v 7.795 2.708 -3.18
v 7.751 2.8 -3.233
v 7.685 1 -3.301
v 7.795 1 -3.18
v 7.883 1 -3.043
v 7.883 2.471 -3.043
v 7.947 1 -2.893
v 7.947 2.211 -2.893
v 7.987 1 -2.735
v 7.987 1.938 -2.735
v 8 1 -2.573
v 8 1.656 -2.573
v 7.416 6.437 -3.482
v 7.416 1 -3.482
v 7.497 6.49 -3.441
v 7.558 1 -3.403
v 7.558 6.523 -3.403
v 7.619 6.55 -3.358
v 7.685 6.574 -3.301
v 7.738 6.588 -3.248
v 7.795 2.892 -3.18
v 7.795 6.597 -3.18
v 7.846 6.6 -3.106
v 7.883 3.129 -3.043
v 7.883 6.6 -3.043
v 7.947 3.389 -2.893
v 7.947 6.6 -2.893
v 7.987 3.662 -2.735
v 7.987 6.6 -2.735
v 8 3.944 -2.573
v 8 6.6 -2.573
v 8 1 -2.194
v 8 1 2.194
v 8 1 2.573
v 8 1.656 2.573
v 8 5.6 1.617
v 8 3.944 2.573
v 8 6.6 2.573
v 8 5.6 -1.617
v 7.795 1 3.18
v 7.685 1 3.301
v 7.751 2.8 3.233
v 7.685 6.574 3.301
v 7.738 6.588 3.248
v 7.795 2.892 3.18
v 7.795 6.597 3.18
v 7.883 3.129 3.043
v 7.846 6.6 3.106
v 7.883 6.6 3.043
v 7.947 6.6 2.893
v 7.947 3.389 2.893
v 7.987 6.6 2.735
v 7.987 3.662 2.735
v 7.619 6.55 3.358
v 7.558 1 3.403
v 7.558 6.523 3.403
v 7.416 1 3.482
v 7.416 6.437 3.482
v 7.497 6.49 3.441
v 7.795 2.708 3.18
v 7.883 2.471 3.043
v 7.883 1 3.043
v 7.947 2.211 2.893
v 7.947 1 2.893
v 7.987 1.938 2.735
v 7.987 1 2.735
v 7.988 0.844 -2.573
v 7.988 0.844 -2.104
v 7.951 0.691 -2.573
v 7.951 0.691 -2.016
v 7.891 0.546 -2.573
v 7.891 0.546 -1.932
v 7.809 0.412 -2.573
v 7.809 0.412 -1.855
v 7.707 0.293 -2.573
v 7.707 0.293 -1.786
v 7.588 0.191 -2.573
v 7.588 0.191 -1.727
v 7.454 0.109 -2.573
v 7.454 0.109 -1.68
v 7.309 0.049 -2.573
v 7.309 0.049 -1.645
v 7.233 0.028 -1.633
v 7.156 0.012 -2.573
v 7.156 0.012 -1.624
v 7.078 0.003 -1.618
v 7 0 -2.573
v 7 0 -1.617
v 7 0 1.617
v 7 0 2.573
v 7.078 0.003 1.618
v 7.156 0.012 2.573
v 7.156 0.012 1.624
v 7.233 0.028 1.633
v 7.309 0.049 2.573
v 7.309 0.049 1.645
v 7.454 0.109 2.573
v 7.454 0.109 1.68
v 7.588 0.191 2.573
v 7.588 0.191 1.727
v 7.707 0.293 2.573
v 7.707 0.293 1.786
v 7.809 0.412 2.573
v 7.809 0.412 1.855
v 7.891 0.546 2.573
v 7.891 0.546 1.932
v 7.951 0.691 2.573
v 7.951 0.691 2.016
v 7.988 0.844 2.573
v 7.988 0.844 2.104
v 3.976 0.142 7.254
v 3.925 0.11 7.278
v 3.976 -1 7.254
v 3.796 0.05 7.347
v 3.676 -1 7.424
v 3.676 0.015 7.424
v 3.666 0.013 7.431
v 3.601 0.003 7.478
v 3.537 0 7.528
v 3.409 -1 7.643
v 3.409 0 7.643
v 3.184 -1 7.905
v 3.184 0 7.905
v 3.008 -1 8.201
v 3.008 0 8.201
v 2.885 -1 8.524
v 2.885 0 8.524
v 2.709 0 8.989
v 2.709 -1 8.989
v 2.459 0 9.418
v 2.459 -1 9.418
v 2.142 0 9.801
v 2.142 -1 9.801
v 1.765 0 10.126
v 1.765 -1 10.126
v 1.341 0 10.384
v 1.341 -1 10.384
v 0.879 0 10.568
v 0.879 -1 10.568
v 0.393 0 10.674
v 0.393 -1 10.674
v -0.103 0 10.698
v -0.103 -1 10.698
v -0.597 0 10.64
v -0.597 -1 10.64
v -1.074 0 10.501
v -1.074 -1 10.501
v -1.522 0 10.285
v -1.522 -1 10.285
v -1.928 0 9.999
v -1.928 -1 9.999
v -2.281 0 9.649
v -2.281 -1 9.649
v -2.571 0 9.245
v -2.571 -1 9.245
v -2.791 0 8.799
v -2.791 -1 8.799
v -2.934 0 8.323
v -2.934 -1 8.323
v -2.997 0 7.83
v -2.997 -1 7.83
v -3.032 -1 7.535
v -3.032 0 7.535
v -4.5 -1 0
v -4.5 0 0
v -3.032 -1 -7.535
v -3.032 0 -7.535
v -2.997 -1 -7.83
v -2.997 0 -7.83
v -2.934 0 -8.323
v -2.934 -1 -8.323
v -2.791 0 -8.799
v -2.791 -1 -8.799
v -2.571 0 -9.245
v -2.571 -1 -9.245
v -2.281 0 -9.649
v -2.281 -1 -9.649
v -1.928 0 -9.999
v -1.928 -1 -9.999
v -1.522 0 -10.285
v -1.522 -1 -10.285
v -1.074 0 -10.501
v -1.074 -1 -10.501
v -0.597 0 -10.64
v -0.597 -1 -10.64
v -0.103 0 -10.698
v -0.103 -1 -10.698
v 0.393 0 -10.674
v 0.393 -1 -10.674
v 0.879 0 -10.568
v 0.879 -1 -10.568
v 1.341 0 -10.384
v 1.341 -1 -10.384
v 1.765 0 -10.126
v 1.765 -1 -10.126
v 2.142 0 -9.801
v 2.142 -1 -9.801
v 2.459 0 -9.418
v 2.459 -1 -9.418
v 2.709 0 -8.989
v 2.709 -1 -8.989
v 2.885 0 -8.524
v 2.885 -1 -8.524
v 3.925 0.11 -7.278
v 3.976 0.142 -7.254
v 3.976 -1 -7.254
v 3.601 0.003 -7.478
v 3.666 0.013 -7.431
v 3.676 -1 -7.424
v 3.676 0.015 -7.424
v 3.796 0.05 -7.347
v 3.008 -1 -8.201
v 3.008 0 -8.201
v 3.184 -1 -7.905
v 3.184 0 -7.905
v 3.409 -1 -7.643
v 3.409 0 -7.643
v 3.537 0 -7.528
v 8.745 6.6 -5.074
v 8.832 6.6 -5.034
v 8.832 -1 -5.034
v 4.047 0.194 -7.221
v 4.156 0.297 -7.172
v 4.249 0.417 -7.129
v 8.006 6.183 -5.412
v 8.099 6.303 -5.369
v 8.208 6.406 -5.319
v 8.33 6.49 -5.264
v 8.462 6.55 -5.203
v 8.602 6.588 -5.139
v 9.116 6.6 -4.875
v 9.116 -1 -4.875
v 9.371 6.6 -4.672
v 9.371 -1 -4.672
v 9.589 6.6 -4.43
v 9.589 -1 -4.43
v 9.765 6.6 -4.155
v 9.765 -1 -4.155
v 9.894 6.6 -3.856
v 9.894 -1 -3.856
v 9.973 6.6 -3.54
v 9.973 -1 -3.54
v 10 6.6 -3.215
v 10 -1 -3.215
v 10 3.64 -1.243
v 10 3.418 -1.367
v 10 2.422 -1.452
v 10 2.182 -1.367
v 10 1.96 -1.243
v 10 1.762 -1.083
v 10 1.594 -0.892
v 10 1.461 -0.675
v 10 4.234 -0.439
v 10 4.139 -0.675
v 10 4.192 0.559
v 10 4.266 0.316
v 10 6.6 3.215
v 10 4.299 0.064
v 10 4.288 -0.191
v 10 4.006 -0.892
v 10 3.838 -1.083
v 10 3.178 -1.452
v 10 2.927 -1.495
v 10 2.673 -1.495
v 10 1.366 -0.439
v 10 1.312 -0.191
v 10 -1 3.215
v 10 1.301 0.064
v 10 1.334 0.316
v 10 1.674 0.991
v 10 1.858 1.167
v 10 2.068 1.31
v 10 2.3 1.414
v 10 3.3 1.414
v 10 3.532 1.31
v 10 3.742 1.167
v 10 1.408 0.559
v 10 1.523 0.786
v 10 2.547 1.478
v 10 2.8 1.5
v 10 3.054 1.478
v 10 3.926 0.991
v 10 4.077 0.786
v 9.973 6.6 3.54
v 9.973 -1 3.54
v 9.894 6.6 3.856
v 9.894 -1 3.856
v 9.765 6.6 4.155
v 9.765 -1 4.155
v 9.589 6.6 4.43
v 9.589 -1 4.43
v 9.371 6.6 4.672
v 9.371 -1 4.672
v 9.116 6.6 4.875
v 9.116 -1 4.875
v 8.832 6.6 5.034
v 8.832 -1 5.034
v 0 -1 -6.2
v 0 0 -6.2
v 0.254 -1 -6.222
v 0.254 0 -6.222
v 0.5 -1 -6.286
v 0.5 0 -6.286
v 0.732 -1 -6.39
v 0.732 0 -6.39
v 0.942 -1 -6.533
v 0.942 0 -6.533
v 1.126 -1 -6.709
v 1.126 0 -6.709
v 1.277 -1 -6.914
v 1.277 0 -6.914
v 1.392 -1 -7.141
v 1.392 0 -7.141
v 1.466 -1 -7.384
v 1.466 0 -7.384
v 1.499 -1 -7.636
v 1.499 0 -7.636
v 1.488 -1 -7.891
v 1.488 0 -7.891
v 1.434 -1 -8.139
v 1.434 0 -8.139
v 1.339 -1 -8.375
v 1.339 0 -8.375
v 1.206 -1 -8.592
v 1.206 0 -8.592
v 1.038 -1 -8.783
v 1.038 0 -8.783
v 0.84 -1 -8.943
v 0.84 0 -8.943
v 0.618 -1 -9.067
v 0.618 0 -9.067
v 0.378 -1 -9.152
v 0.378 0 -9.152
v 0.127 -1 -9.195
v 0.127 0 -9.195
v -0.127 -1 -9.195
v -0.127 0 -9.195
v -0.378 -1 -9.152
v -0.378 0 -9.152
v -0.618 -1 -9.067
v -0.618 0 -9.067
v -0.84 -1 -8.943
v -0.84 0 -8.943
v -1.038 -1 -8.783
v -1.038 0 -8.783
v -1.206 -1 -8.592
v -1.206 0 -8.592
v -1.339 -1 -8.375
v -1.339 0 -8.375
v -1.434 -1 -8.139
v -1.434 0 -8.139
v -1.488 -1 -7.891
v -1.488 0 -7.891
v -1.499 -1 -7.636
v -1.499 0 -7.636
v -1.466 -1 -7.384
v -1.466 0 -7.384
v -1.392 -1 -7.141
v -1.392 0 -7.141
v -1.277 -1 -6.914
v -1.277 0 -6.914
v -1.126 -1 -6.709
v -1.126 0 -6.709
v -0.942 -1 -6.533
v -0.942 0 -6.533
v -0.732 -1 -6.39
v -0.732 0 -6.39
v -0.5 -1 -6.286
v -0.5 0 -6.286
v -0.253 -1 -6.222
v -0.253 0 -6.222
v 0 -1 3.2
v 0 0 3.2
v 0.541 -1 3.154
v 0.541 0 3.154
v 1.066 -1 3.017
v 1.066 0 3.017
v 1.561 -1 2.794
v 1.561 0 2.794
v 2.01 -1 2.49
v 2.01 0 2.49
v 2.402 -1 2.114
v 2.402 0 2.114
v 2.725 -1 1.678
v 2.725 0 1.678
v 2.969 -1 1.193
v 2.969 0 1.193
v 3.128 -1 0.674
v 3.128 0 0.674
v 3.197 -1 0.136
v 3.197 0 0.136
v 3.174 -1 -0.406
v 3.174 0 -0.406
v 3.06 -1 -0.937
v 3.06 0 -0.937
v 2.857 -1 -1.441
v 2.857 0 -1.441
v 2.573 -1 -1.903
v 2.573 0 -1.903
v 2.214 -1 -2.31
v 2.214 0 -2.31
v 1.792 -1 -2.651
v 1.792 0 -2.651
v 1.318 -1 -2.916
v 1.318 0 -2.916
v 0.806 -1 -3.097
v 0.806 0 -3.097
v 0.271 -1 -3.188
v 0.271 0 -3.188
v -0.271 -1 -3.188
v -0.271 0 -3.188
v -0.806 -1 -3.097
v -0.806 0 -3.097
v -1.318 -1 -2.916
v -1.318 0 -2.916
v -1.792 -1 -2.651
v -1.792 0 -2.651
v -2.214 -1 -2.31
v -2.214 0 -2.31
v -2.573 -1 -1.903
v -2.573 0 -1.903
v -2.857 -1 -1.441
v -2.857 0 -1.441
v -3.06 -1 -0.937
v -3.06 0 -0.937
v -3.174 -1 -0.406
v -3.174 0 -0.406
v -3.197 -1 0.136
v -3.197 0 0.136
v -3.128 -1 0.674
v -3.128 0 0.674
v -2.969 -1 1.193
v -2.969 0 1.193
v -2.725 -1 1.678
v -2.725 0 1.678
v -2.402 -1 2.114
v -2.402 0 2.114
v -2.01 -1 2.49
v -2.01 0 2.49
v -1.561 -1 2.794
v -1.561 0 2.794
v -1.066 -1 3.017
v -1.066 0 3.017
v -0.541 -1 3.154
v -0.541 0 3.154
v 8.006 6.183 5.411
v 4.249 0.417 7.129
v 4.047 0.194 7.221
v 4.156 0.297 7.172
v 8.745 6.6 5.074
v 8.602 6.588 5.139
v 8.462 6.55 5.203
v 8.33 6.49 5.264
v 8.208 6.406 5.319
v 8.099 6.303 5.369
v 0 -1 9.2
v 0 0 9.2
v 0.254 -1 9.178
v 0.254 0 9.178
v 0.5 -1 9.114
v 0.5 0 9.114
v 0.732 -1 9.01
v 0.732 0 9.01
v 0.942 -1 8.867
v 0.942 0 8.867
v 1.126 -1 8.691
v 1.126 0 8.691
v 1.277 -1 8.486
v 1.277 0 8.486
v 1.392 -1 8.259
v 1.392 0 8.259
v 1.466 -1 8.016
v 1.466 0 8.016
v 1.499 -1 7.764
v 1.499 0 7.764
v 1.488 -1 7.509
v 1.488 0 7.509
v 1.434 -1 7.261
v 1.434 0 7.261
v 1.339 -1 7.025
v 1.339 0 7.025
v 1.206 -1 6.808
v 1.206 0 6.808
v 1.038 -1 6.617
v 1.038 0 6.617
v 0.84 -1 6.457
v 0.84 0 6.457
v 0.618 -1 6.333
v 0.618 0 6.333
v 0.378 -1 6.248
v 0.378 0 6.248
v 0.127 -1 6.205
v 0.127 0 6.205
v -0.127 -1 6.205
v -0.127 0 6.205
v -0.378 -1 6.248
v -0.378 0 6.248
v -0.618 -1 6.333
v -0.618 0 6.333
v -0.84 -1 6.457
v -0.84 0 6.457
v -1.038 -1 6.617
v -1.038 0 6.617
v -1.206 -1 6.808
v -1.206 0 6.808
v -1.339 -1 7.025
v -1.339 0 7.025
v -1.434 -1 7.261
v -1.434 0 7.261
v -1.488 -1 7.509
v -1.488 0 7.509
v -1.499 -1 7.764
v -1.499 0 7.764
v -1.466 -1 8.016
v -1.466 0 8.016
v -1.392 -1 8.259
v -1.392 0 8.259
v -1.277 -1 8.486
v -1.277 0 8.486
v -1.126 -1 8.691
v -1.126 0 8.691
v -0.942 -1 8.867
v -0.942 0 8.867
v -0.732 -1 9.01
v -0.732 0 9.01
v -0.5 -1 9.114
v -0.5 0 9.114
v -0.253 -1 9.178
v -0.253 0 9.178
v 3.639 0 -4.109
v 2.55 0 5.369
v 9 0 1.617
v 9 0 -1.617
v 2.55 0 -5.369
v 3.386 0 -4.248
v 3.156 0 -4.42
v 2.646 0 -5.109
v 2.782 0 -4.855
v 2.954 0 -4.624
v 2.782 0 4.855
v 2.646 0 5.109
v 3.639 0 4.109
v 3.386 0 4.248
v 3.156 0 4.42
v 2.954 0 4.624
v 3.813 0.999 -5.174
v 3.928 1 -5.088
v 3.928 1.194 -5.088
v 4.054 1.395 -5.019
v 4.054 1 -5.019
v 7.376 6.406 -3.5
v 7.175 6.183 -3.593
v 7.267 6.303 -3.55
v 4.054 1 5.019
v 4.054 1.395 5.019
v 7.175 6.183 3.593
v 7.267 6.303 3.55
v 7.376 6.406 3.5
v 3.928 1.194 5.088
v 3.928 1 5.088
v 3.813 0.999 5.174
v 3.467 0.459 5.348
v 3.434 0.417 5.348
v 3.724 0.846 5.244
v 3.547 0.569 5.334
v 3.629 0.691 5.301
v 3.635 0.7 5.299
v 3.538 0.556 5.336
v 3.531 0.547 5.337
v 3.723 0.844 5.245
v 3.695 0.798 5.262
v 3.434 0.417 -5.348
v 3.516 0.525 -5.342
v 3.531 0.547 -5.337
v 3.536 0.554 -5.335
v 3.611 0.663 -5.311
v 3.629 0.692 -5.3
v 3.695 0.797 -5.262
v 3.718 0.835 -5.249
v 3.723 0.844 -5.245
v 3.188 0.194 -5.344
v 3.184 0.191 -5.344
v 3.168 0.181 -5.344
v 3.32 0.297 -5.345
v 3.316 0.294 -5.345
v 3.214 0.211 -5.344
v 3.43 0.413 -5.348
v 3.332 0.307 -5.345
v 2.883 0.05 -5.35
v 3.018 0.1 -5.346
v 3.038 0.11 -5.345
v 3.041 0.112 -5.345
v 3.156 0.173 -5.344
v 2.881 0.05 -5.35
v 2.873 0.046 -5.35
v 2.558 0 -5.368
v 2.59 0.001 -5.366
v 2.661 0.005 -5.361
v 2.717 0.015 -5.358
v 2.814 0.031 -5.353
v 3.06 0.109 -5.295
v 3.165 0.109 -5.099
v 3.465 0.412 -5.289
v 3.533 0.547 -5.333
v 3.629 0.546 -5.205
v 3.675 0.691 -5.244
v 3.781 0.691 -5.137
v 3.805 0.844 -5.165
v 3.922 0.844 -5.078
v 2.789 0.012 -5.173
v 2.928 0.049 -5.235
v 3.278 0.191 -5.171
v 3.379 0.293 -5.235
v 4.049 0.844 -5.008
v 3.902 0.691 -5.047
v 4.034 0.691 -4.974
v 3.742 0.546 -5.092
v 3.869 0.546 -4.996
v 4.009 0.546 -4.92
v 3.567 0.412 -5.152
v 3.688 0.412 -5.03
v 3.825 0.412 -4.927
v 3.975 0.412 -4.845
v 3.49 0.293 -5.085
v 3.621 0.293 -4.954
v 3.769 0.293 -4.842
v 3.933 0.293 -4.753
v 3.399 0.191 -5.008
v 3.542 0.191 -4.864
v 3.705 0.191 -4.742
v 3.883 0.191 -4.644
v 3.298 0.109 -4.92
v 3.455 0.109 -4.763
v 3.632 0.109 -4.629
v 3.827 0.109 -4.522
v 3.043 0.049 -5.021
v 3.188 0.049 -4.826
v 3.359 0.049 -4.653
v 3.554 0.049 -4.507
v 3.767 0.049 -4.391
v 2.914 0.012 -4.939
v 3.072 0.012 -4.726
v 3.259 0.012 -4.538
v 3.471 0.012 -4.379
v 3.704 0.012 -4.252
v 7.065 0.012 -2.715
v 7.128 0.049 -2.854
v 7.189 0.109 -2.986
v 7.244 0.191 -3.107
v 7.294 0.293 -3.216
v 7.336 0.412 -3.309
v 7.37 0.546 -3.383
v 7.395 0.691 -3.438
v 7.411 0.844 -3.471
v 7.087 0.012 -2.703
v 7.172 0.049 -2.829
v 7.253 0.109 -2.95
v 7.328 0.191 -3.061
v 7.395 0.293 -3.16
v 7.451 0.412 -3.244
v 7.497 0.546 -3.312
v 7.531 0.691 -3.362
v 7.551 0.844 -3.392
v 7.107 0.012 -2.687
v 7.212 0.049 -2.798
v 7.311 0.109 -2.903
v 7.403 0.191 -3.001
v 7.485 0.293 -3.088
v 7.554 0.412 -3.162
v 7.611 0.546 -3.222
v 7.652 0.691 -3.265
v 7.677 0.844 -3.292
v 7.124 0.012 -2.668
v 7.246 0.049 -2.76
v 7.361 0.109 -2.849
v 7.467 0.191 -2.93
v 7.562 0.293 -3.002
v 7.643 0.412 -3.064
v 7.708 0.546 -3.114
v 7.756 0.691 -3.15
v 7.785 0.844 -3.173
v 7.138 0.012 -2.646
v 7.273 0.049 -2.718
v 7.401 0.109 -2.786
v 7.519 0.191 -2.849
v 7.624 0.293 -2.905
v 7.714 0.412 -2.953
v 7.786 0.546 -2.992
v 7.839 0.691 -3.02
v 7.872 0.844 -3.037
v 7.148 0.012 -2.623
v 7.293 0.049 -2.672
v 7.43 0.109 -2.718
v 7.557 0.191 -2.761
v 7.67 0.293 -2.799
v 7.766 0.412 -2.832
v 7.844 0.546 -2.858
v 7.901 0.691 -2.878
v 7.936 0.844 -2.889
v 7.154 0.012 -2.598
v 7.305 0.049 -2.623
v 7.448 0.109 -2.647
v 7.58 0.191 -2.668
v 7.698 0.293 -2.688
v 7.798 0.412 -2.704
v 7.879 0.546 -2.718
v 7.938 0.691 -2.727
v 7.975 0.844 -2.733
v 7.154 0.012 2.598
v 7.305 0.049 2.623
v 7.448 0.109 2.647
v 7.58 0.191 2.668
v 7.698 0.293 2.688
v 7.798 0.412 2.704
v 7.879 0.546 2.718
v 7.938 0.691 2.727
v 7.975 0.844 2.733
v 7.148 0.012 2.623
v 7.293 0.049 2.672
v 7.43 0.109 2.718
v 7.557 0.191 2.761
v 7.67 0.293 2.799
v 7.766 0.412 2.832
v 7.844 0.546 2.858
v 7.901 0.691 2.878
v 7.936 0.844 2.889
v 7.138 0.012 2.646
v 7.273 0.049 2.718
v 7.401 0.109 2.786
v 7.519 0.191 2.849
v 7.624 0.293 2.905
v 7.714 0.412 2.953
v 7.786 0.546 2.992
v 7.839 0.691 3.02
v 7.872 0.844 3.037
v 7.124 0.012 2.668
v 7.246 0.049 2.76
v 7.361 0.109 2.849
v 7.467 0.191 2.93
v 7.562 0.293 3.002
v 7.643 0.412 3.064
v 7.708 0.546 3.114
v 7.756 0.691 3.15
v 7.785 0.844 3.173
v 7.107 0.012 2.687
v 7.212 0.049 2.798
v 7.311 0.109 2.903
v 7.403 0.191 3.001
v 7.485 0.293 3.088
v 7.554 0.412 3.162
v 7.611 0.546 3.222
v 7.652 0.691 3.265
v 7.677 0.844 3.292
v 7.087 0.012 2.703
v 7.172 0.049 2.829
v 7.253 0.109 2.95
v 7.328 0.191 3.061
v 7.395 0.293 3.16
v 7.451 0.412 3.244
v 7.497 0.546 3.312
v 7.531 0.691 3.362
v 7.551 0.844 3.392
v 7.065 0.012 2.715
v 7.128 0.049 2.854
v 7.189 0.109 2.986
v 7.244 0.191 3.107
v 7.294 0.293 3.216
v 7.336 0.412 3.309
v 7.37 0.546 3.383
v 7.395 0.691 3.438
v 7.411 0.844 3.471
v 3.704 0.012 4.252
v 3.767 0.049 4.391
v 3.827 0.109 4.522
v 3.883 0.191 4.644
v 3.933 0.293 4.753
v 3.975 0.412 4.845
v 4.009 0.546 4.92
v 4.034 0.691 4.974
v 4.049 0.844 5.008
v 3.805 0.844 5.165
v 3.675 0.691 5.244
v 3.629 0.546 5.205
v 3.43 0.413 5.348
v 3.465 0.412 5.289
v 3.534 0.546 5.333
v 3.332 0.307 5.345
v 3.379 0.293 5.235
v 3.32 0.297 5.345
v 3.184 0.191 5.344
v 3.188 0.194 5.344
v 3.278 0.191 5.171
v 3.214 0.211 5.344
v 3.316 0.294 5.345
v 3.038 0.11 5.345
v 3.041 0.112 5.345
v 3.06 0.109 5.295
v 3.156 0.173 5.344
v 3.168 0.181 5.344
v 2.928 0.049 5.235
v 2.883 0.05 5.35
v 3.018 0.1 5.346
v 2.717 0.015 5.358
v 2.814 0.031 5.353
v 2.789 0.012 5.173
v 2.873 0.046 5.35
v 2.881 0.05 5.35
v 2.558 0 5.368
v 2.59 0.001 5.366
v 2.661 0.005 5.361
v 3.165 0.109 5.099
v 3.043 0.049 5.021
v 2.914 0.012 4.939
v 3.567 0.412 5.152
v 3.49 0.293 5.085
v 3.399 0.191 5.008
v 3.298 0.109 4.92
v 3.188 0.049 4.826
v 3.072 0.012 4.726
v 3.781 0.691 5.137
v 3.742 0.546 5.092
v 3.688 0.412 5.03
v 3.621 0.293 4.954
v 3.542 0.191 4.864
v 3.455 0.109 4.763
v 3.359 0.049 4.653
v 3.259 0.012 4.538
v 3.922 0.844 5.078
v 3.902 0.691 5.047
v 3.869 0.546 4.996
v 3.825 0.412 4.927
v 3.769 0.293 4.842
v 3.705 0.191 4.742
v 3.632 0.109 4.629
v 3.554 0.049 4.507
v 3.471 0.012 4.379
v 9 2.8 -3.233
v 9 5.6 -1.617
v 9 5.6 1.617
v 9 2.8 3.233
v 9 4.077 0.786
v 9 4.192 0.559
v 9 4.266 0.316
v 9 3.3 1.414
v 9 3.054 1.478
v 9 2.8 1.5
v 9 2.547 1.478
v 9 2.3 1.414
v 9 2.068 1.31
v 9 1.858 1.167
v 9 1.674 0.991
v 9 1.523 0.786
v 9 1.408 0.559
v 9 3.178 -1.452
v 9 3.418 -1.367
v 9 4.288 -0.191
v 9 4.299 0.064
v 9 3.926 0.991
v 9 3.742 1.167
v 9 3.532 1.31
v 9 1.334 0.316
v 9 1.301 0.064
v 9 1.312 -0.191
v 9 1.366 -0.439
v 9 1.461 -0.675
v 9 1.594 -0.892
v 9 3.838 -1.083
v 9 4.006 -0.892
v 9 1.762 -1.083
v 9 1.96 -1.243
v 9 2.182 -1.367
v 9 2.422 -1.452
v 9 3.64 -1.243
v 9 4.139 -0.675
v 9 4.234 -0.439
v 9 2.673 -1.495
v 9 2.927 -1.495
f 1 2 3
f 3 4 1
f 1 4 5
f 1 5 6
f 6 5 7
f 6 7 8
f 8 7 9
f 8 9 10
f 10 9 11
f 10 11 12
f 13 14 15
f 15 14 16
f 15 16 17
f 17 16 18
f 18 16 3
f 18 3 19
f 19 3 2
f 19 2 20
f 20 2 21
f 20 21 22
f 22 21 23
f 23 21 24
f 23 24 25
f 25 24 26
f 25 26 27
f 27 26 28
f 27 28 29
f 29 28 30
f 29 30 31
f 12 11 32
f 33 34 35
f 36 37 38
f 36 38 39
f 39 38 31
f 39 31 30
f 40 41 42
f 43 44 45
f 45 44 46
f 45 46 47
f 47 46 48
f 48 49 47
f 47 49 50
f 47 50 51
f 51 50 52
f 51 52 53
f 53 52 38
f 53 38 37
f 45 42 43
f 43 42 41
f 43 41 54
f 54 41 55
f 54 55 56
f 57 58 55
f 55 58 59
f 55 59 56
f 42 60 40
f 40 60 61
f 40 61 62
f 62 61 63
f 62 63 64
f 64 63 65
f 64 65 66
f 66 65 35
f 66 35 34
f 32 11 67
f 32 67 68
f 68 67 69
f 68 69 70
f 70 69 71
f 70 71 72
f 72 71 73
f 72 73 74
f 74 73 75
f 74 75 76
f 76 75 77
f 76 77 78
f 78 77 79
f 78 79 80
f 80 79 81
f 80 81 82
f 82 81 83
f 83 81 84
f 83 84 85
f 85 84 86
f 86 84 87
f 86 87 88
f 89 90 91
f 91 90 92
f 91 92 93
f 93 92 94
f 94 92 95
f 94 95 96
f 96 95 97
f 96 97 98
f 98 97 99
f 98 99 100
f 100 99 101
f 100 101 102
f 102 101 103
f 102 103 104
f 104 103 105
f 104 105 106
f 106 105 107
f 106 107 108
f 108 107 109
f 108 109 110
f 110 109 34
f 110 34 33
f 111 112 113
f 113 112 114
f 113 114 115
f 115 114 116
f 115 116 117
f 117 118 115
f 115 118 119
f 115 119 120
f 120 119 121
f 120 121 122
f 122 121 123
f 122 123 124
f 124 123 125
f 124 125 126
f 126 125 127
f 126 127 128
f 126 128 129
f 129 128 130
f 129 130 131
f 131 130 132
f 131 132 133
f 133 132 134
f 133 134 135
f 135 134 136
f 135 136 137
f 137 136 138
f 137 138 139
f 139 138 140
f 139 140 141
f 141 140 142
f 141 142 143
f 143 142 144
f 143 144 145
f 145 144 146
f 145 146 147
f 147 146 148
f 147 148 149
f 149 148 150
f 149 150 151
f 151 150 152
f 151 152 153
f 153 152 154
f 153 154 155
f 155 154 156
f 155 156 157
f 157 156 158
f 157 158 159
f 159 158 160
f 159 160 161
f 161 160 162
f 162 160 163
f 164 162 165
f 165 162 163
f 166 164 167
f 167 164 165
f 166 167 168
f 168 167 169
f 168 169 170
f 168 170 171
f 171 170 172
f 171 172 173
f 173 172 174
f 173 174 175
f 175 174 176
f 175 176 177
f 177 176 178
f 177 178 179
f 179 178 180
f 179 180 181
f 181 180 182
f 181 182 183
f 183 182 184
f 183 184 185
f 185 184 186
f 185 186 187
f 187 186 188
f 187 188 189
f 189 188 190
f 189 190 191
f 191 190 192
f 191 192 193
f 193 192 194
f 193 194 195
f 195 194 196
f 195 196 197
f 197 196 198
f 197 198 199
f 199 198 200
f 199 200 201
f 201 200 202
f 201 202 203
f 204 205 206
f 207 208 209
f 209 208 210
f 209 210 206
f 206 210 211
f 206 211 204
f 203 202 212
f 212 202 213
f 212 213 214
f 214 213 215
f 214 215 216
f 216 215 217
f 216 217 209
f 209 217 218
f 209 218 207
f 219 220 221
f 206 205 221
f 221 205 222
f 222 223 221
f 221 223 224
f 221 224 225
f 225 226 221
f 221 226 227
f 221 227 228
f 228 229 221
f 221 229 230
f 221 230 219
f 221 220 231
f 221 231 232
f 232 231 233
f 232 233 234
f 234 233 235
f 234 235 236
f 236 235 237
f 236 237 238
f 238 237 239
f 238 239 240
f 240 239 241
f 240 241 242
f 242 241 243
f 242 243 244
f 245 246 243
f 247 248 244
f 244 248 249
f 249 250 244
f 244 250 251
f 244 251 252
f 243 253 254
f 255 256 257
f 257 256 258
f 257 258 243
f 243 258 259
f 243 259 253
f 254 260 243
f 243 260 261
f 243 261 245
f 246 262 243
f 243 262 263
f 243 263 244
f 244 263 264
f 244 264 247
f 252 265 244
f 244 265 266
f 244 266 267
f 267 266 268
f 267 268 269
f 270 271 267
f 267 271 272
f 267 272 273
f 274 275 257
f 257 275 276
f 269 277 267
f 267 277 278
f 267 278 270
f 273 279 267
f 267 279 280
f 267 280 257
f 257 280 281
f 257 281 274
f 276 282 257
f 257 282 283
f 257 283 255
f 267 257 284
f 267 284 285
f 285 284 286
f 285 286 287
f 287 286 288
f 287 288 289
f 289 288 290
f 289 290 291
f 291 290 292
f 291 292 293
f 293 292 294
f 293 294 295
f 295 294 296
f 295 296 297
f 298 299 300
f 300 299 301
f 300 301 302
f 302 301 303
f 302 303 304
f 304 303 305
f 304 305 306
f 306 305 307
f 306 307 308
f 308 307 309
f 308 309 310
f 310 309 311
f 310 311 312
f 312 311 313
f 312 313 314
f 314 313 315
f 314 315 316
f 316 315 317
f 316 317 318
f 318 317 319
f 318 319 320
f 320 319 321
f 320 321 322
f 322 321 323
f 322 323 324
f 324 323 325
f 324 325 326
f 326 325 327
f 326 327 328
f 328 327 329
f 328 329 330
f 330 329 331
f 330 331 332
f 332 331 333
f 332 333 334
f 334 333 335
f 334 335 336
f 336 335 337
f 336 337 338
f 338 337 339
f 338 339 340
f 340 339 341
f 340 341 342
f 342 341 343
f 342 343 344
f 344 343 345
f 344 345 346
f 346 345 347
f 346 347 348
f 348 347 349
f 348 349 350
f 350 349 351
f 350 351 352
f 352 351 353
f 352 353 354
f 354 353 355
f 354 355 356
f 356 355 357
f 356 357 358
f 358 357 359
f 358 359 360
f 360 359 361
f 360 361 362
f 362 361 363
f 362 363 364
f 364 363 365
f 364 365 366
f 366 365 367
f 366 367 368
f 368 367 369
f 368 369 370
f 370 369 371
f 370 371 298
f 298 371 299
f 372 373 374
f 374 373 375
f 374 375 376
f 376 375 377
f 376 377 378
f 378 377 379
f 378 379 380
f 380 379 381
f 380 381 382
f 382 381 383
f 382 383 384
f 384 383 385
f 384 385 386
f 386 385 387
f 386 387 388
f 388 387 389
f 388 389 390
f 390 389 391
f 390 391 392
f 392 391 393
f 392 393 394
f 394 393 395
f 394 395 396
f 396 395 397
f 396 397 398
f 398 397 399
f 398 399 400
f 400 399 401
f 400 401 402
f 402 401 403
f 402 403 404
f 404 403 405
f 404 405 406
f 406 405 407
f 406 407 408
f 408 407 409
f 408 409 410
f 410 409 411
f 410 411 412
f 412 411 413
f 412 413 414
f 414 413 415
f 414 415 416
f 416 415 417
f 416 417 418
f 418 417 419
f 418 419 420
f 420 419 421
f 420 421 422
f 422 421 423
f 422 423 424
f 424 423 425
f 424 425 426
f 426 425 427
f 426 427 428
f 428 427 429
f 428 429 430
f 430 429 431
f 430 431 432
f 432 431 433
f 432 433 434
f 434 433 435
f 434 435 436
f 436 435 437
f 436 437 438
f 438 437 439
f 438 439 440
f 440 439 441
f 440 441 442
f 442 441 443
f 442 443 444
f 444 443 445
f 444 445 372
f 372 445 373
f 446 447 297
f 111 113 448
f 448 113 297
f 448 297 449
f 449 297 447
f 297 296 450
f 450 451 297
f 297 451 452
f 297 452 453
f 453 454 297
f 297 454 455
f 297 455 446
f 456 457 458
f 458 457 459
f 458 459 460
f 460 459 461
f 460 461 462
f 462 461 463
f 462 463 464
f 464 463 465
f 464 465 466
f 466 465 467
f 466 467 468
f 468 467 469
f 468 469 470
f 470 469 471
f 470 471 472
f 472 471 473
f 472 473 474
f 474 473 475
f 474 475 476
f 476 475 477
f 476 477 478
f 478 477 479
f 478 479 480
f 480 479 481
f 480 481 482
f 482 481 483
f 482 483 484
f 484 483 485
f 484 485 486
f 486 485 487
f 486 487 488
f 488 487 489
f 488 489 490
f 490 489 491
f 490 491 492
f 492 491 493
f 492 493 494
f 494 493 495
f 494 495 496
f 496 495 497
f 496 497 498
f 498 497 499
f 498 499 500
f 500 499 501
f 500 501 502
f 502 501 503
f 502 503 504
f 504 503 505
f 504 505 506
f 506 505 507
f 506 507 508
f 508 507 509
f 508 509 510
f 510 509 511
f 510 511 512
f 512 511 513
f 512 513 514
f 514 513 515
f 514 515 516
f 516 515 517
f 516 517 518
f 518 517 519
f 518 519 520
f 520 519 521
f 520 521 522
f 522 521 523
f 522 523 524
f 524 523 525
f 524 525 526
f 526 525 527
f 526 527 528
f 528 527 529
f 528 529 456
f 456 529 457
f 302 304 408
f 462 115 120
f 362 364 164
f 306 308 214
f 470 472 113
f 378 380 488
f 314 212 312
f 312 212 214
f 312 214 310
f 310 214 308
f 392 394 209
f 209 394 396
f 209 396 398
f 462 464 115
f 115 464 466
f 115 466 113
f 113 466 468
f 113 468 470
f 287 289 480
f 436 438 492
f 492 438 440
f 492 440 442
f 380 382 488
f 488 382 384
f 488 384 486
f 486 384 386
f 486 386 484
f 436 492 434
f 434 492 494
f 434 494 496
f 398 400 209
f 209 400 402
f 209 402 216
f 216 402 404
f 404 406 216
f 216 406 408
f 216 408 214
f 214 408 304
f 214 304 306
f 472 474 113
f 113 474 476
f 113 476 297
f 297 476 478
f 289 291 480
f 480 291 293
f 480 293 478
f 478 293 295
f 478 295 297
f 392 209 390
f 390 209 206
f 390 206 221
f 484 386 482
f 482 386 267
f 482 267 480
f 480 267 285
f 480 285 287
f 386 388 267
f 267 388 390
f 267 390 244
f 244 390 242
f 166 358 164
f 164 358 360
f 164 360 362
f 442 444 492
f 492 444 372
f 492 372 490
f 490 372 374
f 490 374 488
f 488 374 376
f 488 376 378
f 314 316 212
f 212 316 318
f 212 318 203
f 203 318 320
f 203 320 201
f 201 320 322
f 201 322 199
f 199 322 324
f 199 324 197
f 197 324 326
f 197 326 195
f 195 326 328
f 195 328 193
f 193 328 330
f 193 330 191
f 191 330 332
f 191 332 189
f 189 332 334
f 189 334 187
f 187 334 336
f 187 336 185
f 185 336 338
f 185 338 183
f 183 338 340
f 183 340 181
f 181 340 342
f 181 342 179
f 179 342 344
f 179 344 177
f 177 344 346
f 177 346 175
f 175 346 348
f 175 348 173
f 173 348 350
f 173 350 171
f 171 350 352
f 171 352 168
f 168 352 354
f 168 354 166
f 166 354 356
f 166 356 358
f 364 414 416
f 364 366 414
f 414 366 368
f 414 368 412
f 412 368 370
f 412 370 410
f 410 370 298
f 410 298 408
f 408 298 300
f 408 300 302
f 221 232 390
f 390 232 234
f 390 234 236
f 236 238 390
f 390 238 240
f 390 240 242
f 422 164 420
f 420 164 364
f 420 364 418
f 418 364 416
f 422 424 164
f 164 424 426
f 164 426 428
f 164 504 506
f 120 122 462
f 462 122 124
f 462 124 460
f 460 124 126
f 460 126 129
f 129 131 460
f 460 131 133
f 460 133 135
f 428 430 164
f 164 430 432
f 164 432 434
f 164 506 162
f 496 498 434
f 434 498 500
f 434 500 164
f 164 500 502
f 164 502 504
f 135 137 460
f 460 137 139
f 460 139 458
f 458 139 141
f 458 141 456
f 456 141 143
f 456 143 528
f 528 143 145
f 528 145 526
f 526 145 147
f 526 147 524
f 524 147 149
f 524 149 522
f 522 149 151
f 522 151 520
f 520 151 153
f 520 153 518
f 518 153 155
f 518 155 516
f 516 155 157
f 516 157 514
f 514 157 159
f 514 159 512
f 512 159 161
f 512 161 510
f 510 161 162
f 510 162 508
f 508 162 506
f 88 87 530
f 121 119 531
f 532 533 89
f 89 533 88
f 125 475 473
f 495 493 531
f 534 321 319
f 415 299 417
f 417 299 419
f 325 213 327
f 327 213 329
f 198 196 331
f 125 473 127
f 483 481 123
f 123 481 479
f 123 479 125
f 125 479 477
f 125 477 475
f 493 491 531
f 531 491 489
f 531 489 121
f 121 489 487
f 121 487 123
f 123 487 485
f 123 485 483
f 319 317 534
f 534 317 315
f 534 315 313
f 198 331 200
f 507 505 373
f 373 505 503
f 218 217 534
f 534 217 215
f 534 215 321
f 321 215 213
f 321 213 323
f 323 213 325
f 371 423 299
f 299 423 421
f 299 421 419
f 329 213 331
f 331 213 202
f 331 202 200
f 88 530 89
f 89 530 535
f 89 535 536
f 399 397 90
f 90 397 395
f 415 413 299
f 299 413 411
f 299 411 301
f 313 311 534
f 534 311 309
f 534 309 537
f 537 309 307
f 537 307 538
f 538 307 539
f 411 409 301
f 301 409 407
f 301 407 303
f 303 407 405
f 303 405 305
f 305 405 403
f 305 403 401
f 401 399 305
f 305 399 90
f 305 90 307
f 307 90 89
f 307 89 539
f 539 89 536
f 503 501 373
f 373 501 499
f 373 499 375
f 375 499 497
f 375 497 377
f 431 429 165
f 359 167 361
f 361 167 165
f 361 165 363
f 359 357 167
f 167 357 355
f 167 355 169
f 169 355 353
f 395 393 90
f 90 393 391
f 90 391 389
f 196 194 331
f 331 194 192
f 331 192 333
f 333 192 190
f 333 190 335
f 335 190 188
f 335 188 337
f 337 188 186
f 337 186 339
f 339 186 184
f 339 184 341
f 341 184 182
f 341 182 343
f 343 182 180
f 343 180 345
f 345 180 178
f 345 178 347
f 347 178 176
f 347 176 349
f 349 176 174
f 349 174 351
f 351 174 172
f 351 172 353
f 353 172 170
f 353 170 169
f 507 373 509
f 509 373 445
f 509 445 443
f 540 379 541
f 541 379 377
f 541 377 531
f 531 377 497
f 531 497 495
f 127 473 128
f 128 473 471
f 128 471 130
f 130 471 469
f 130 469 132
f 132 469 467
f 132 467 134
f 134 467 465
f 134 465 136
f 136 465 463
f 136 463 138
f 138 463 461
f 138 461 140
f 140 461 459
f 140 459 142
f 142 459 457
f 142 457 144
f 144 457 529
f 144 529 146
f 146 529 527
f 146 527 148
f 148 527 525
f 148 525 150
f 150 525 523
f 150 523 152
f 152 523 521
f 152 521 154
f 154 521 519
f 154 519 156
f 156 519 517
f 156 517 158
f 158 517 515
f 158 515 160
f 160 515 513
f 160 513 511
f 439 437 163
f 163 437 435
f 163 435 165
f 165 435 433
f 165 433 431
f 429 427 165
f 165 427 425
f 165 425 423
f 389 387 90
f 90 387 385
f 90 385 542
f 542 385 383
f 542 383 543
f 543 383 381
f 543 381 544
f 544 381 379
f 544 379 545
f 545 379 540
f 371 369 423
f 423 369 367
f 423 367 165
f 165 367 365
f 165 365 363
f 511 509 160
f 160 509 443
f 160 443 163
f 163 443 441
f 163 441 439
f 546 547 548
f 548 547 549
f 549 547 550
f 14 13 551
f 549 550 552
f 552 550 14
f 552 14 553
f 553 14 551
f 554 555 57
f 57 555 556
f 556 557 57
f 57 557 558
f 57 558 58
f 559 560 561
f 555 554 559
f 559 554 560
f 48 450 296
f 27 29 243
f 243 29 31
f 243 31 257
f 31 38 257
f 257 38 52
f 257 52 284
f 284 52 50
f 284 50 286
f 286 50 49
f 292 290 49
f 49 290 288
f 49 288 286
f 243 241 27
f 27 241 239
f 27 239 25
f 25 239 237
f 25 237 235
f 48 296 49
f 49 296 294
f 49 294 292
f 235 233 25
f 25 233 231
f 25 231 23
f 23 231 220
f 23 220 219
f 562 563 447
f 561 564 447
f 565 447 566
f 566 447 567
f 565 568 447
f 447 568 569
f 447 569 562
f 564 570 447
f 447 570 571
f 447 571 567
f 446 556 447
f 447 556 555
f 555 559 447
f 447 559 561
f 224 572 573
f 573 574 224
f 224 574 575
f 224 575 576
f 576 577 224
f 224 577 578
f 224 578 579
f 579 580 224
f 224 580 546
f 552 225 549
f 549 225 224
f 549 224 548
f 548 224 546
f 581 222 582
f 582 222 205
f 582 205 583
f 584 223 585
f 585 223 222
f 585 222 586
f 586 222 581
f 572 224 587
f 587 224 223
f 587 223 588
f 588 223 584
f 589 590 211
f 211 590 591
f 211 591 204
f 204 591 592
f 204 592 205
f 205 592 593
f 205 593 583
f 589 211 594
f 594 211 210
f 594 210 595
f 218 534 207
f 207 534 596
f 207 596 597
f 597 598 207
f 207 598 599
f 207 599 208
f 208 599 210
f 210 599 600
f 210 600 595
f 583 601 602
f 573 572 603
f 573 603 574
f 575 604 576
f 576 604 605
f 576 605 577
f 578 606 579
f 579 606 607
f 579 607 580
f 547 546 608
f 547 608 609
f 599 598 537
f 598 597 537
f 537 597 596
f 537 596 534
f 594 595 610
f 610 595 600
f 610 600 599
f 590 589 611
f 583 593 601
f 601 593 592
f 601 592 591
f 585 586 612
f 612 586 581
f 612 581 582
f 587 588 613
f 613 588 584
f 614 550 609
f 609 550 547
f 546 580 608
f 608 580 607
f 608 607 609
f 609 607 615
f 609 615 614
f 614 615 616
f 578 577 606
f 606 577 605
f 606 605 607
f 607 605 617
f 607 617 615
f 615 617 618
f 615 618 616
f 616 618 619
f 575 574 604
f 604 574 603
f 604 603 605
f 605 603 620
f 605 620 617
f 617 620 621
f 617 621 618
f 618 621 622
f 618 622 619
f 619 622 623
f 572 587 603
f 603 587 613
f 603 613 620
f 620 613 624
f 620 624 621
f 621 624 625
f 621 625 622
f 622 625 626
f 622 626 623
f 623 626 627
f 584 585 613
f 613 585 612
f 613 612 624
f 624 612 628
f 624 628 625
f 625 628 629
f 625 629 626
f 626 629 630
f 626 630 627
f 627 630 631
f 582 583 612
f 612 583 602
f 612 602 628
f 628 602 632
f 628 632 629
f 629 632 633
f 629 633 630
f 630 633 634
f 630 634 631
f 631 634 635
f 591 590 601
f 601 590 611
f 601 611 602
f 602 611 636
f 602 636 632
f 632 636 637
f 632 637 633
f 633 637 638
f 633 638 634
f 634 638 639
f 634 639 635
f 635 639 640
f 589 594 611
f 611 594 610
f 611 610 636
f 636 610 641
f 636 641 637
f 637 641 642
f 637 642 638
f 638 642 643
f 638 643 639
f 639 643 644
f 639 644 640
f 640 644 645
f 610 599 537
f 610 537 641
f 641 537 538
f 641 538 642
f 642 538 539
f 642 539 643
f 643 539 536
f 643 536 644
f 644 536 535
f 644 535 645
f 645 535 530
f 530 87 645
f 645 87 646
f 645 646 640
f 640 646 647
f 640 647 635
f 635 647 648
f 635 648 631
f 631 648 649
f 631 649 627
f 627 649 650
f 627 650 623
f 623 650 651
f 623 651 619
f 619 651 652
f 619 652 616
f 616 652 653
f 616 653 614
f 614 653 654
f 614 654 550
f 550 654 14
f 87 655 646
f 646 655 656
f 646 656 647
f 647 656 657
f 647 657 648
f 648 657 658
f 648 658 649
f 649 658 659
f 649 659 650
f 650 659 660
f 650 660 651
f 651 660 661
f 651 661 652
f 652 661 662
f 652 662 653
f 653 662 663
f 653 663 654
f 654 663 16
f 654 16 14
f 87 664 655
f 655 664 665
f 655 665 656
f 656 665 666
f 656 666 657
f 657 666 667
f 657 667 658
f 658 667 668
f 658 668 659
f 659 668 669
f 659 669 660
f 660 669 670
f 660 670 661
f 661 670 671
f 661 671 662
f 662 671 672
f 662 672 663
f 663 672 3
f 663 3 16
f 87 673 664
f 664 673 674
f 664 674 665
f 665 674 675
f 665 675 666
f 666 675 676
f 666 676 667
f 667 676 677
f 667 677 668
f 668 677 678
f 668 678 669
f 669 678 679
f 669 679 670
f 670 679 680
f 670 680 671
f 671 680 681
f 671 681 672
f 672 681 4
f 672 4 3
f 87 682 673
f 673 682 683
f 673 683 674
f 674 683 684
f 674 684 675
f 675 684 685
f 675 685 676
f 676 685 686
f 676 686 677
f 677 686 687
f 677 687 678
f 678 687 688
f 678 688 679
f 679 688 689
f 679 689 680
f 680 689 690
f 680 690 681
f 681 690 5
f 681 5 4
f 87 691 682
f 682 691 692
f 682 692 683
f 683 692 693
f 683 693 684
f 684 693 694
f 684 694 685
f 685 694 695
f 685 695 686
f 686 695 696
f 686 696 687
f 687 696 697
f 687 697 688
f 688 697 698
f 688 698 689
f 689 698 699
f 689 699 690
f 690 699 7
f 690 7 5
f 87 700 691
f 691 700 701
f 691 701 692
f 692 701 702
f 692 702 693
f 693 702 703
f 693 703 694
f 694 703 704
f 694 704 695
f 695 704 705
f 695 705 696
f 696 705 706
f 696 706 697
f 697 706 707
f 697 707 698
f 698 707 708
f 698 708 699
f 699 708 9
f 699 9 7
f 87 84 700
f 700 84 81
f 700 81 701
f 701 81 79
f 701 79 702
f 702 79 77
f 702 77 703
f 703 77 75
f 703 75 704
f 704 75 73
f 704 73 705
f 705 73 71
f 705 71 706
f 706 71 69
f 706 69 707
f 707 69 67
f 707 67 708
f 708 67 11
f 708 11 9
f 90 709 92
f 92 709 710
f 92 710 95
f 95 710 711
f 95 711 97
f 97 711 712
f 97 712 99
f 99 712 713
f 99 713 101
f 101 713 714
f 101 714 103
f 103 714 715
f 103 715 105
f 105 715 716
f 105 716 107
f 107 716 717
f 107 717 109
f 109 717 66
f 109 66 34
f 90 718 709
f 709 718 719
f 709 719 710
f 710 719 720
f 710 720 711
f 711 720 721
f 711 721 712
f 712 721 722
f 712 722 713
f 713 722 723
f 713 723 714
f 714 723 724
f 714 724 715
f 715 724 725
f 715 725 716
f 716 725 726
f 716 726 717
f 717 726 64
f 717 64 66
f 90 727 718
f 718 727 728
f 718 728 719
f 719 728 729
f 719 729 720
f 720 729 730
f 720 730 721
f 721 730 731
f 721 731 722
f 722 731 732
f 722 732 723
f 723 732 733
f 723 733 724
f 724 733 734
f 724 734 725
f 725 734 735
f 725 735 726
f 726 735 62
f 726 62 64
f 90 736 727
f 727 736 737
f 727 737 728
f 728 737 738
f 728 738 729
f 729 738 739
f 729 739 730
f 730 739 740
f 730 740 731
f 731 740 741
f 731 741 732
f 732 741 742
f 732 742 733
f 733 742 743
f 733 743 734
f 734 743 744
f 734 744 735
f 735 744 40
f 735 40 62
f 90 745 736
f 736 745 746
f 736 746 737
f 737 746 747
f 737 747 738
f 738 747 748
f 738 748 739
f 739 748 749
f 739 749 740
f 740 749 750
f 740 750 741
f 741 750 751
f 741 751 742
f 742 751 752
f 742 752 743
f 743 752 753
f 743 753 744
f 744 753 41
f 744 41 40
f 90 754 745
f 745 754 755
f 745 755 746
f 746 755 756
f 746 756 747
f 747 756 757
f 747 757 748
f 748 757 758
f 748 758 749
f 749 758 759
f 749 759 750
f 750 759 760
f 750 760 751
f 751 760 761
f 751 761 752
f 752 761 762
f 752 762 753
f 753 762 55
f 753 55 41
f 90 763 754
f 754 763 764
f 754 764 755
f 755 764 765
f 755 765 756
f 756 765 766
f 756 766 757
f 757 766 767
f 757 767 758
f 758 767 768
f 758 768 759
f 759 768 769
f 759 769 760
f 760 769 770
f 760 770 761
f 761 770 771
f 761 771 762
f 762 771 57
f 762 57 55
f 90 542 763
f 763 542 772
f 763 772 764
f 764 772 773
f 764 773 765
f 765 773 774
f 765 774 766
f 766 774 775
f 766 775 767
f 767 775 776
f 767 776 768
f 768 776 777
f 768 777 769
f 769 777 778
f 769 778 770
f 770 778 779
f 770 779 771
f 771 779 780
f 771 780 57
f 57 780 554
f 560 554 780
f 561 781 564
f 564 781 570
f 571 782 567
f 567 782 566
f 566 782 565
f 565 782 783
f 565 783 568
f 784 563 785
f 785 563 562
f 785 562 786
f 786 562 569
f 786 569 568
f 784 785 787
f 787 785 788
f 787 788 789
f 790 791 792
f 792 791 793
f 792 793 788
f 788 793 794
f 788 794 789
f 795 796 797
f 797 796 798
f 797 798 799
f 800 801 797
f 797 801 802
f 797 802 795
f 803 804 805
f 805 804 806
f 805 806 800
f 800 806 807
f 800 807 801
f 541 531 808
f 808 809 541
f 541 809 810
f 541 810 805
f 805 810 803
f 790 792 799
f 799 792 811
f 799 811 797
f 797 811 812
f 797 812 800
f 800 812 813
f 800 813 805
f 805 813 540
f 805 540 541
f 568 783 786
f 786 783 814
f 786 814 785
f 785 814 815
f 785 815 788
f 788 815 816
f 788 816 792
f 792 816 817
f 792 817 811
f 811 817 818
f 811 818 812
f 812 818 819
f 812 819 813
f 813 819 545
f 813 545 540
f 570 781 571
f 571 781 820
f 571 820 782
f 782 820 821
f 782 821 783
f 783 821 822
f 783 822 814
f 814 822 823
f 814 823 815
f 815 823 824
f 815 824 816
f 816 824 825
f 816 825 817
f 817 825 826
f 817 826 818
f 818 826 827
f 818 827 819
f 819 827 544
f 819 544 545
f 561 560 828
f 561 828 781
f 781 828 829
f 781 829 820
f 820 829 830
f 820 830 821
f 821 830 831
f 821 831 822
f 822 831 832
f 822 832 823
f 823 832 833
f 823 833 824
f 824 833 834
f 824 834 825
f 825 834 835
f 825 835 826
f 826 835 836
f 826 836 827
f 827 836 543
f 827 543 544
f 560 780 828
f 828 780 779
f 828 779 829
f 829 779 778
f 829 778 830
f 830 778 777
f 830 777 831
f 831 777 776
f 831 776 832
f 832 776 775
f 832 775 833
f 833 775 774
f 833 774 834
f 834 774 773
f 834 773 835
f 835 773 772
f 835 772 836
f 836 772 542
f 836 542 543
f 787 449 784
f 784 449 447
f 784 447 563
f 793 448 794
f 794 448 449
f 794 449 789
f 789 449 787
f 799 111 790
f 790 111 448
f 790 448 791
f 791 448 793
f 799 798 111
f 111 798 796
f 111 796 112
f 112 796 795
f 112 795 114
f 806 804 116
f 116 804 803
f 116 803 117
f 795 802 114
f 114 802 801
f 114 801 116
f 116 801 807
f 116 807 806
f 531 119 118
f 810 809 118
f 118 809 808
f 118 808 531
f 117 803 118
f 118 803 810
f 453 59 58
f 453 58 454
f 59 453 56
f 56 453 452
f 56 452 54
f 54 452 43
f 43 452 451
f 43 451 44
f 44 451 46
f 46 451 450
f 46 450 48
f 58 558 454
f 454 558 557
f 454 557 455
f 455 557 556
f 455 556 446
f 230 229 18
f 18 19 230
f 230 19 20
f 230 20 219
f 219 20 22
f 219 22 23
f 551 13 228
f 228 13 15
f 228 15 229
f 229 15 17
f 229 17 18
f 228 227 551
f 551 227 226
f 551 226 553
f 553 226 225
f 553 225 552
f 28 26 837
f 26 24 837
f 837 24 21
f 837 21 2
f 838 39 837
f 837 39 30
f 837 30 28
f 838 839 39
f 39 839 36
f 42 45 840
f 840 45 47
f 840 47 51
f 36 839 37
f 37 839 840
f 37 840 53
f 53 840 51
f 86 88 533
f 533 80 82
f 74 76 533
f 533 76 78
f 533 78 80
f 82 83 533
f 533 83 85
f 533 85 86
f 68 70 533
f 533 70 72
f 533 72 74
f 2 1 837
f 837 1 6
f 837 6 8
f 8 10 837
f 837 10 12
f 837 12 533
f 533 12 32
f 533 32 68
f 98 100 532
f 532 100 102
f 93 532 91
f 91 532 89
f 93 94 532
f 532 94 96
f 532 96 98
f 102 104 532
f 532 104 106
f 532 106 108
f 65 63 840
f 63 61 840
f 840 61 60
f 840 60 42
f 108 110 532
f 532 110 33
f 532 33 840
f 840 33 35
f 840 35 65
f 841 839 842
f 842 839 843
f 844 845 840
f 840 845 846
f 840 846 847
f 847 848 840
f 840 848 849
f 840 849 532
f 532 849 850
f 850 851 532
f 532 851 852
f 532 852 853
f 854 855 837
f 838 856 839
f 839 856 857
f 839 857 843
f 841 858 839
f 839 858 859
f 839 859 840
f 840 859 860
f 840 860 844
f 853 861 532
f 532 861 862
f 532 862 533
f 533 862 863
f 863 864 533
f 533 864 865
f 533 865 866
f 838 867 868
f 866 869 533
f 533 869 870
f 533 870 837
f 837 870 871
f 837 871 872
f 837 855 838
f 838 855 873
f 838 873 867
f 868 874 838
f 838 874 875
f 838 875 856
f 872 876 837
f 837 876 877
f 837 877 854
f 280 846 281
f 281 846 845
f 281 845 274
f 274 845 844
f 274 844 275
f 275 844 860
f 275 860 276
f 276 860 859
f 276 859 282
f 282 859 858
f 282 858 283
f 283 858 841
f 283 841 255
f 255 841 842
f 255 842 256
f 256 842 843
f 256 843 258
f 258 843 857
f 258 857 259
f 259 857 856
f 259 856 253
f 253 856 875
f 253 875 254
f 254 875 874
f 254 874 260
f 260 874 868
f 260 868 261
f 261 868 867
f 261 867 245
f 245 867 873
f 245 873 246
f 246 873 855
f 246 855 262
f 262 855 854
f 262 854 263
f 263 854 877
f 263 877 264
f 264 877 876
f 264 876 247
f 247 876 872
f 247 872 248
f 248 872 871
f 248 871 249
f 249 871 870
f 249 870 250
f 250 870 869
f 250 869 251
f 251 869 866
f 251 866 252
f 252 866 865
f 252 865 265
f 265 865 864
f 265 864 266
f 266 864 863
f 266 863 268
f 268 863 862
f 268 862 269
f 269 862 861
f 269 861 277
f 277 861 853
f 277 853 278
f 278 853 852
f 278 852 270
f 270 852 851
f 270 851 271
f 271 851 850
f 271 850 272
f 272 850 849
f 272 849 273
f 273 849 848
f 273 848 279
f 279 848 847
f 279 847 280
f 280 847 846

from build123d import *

# Parameters (mm, degrees)
ESQUISSE1_R                  = 3.2
ESQUISSE1_R_2                = 1.5
BOSS_EXTRU_1_DEPTH           = 1
BOSS_EXTRU_2_START           = 6.6
BOSS_EXTRU_2_DEPTH           = 6.6
CHANFREIN1_SIZE              = 6.6
CHANFREIN1_SIZE_2            = 4.73
CONG_1_R                     = 1
ENL_V_MAT_EXTRU_1_DEPTH      = 18.728508153
ENL_V_MAT_EXTRU_1_DEPTH_BACK = 1
ENL_V_MAT_EXTRU_2_DEPTH      = 18.728508153
ENL_V_MAT_EXTRU_2_DEPTH_BACK = 18.728508153
ESQUISSE2_3_R                = 1.5


with BuildPart() as part:
    # Esquisse1 → Boss.-Extru.1 (new body)
    # profile 1 of 2: a face of its own
    with BuildSketch(Plane(origin=(0, 0, 0), x_dir=(1, 0, 0), z_dir=(0, 1, 0))):
        with BuildLine():
            Line((7.41575976, 3.482294806), (4.054342249, 5.018942811))
            ThreePointArc((4.054342249, 5.018942811), (3.533019895, 5.579308264), (3.560627534, 6.344177047))
            Line((3.560627534, 6.344177047), (3.976387294, 7.253651523))
            ThreePointArc((3.976387294, 7.253651523), (3.291254041, 7.768850358), (2.884744089, 8.523560284))
            ThreePointArc((2.884744089, 8.523560284), (-0.351141019, 10.679379127), (-2.997167453, 7.830335178))
            ThreePointArc((-2.997167453, 7.830335178), (-3.009169797, 7.681917242), (-3.032181114, 7.534803614))
            Line((-3.032181114, 7.534803614), (-4.5, 0))
            Line((-4.5, 0), (-3.032181114, -7.534803614))
            ThreePointArc((-3.032181114, -7.534803614), (-3.009169797, -7.681917242), (-2.997167453, -7.830335178))
            ThreePointArc((-2.997167453, -7.830335178), (-0.351141019, -10.679379127), (2.884744089, -8.523560284))
            ThreePointArc((2.884744089, -8.523560284), (3.291254041, -7.768850358), (3.976387294, -7.253651523))
            Line((3.976387294, -7.253651523), (3.560627534, -6.344177047))
            ThreePointArc((3.560627534, -6.344177047), (3.533019895, -5.579308264), (4.054342249, -5.018942811))
            Line((4.054342249, -5.018942811), (7.41575976, -3.482294806))
            ThreePointArc((7.41575976, -3.482294806), (7.841355977, -3.113301708), (8, -2.572820331))
            Line((8, -2.572820331), (8, 2.572820331))
            ThreePointArc((8, 2.572820331), (7.841355977, 3.113301708), (7.41575976, 3.482294806))
        make_face()
        with Locations(Location((0, 0, 0), (0, 0, 270))):
            Circle(ESQUISSE1_R, mode=Mode.SUBTRACT)
        with Locations(Location((0, 7.7, 0), (0, 0, 270))):
            Circle(ESQUISSE1_R_2, mode=Mode.SUBTRACT)
        with Locations(Location((0, -7.7, 0), (0, 0, 270))):
            Circle(ESQUISSE1_R_2, mode=Mode.SUBTRACT)
    # profile 2 of 2: a face of its own
    with BuildSketch(Plane(origin=(0, 0, 0), x_dir=(1, 0, 0), z_dir=(0, 1, 0))):
        with BuildLine():
            ThreePointArc((4.054342249, 5.018942811), (3.533019895, 5.579308264), (3.560627534, 6.344177047))
            Line((3.560627534, 6.344177047), (3.976387294, 7.253651523))
            Line((3.976387294, 7.253651523), (8.831519521, 5.034162505))
            ThreePointArc((8.831519521, 5.034162505), (9.682711954, 4.29617631), (10, 3.215213554))
            Line((10, 3.215213554), (10, -3.215213554))
            ThreePointArc((10, -3.215213554), (9.682711954, -4.29617631), (8.831519521, -5.034162505))
            Line((8.831519521, -5.034162505), (3.976387294, -7.253651523))
            Line((3.976387294, -7.253651523), (3.560627534, -6.344177047))
            ThreePointArc((3.560627534, -6.344177047), (3.533019895, -5.579308264), (4.054342249, -5.018942811))
            Line((4.054342249, -5.018942811), (7.41575976, -3.482294806))
            ThreePointArc((7.41575976, -3.482294806), (7.841355977, -3.113301708), (8, -2.572820331))
            Line((8, -2.572820331), (8, 2.572820331))
            ThreePointArc((8, 2.572820331), (7.841355977, 3.113301708), (7.41575976, 3.482294806))
            Line((7.41575976, 3.482294806), (4.054342249, 5.018942811))
        make_face()
    extrude(amount=-BOSS_EXTRU_1_DEPTH)

    # Esquisse1<3> → Boss.-Extru.2 (add)
    with BuildSketch(Plane(origin=(0, 0, 0), x_dir=(1, 0, 0), z_dir=(0, 1, 0)).offset(BOSS_EXTRU_2_START)):
        with BuildLine():
            ThreePointArc((4.054342249, 5.018942811), (3.533019895, 5.579308264), (3.560627534, 6.344177047))
            Line((3.560627534, 6.344177047), (3.976387294, 7.253651523))
            Line((3.976387294, 7.253651523), (8.831519521, 5.034162505))
            ThreePointArc((8.831519521, 5.034162505), (9.682711954, 4.29617631), (10, 3.215213554))
            Line((10, 3.215213554), (10, -3.215213554))
            ThreePointArc((10, -3.215213554), (9.682711954, -4.29617631), (8.831519521, -5.034162505))
            Line((8.831519521, -5.034162505), (3.976387294, -7.253651523))
            Line((3.976387294, -7.253651523), (3.560627534, -6.344177047))
            ThreePointArc((3.560627534, -6.344177047), (3.533019895, -5.579308264), (4.054342249, -5.018942811))
            Line((4.054342249, -5.018942811), (7.41575976, -3.482294806))
            ThreePointArc((7.41575976, -3.482294806), (7.841355977, -3.113301708), (8, -2.572820331))
            Line((8, -2.572820331), (8, 2.572820331))
            ThreePointArc((8, 2.572820331), (7.841355977, 3.113301708), (7.41575976, 3.482294806))
            Line((7.41575976, 3.482294806), (4.054342249, 5.018942811))
        make_face()
    extrude(amount=-BOSS_EXTRU_2_DEPTH)

    # Chanfrein1
    # the kernel refuses this chamfer: 6.6, 4.73 mm, written as the material it takes off along each edge
    with BuildSketch(Plane(origin=(11.061264904, 6.6, 22.751821295), x_dir=(-0.020518924966706303, -0.9997454615139245, 0.009380079984775464), z_dir=(-0.4157597602676271, 0, -0.9094744755858766))) as chanfrein1_piece_1_section:
        Polygon((CHANFREIN1_SIZE * 0.999745461514, -CHANFREIN1_SIZE * 0.0225612983294), (-CHANFREIN1_SIZE_2 * 0.0225612983294, -CHANFREIN1_SIZE_2 * 0.999745461514), (0, 0), align=None)
    chanfrein1_piece_1 = extrude(amount=35.081593686, mode=Mode.PRIVATE)
    chanfrein1_piece_1 = split(chanfrein1_piece_1, bisect_by=Plane(origin=(5.170241743, 0, 6.158121449), z_dir=(0, 1, 0)), keep=Keep.TOP, mode=Mode.PRIVATE)
    add(chanfrein1_piece_1, mode=Mode.SUBTRACT)
    with BuildSketch(Plane(origin=(-3.524250076, 6.6, 9.153992725), x_dir=(-0.0205189249667065, -0.9997454615139245, -0.009380079984775552), z_dir=(0.4157597602676271, 0, -0.9094744755858766))) as chanfrein1_piece_2_section:
        Polygon((CHANFREIN1_SIZE * 0.999745461514, -CHANFREIN1_SIZE * 0.0225612983294), (-CHANFREIN1_SIZE_2 * 0.0225612983294, -CHANFREIN1_SIZE_2 * 0.999745461514), (0, 0), align=None)
    chanfrein1_piece_2 = extrude(amount=35.081593686, mode=Mode.PRIVATE)
    chanfrein1_piece_2 = split(chanfrein1_piece_2, bisect_by=Plane(origin=(5.170241743, 0, -6.158121449), z_dir=(0, 1, 0)), keep=Keep.TOP, mode=Mode.PRIVATE)
    add(chanfrein1_piece_2, mode=Mode.SUBTRACT)

    # Congé1
    cong_1_edges = [part.edges().sort_by_distance(p)[0] for p in [
        (7.862321613, 6.6, 4.377370464),
        (7.862321613, 6.6, -4.377370464),
        (3.768507414, 0, 6.798914285),
        (5.735051005, 0, 4.250618809),
        (7.841355977, 0, 3.113301708),
        (8, 0, 0),
        (7.841355977, 0, -3.113301708),
        (5.735051005, 0, -4.250618809),
        (3.768507414, 0, -6.798914285),
    ]]
    fillet(cong_1_edges, radius=CONG_1_R)

    # Esquisse2 → Enlèv. mat.-Extru.1 (cut, two sides: drawn at the far end of the back side and taken through both)
    with BuildSketch(Plane.ZY.offset(-8).offset(-ENL_V_MAT_EXTRU_1_DEPTH_BACK)):
        Polygon((3.233161507, 2.8), (1.616580754, 5.6), (-1.616580754, 5.6), (-3.233161507, 2.8), (-1.616580754, 0), (1.616580754, 0), align=None)
    extrude(amount=ENL_V_MAT_EXTRU_1_DEPTH + ENL_V_MAT_EXTRU_1_DEPTH_BACK, mode=Mode.SUBTRACT)

    # Esquisse2<3> → Enlèv. mat.-Extru.2 (cut, two sides: drawn at the far end of the back side and taken through both)
    with BuildSketch(Plane.ZY.offset(-8).offset(-ENL_V_MAT_EXTRU_2_DEPTH_BACK)):
        with Locations((0, 2.8)):
            Circle(ESQUISSE2_3_R)
    extrude(amount=ENL_V_MAT_EXTRU_2_DEPTH + ENL_V_MAT_EXTRU_2_DEPTH_BACK, mode=Mode.SUBTRACT)


solid = part.part
